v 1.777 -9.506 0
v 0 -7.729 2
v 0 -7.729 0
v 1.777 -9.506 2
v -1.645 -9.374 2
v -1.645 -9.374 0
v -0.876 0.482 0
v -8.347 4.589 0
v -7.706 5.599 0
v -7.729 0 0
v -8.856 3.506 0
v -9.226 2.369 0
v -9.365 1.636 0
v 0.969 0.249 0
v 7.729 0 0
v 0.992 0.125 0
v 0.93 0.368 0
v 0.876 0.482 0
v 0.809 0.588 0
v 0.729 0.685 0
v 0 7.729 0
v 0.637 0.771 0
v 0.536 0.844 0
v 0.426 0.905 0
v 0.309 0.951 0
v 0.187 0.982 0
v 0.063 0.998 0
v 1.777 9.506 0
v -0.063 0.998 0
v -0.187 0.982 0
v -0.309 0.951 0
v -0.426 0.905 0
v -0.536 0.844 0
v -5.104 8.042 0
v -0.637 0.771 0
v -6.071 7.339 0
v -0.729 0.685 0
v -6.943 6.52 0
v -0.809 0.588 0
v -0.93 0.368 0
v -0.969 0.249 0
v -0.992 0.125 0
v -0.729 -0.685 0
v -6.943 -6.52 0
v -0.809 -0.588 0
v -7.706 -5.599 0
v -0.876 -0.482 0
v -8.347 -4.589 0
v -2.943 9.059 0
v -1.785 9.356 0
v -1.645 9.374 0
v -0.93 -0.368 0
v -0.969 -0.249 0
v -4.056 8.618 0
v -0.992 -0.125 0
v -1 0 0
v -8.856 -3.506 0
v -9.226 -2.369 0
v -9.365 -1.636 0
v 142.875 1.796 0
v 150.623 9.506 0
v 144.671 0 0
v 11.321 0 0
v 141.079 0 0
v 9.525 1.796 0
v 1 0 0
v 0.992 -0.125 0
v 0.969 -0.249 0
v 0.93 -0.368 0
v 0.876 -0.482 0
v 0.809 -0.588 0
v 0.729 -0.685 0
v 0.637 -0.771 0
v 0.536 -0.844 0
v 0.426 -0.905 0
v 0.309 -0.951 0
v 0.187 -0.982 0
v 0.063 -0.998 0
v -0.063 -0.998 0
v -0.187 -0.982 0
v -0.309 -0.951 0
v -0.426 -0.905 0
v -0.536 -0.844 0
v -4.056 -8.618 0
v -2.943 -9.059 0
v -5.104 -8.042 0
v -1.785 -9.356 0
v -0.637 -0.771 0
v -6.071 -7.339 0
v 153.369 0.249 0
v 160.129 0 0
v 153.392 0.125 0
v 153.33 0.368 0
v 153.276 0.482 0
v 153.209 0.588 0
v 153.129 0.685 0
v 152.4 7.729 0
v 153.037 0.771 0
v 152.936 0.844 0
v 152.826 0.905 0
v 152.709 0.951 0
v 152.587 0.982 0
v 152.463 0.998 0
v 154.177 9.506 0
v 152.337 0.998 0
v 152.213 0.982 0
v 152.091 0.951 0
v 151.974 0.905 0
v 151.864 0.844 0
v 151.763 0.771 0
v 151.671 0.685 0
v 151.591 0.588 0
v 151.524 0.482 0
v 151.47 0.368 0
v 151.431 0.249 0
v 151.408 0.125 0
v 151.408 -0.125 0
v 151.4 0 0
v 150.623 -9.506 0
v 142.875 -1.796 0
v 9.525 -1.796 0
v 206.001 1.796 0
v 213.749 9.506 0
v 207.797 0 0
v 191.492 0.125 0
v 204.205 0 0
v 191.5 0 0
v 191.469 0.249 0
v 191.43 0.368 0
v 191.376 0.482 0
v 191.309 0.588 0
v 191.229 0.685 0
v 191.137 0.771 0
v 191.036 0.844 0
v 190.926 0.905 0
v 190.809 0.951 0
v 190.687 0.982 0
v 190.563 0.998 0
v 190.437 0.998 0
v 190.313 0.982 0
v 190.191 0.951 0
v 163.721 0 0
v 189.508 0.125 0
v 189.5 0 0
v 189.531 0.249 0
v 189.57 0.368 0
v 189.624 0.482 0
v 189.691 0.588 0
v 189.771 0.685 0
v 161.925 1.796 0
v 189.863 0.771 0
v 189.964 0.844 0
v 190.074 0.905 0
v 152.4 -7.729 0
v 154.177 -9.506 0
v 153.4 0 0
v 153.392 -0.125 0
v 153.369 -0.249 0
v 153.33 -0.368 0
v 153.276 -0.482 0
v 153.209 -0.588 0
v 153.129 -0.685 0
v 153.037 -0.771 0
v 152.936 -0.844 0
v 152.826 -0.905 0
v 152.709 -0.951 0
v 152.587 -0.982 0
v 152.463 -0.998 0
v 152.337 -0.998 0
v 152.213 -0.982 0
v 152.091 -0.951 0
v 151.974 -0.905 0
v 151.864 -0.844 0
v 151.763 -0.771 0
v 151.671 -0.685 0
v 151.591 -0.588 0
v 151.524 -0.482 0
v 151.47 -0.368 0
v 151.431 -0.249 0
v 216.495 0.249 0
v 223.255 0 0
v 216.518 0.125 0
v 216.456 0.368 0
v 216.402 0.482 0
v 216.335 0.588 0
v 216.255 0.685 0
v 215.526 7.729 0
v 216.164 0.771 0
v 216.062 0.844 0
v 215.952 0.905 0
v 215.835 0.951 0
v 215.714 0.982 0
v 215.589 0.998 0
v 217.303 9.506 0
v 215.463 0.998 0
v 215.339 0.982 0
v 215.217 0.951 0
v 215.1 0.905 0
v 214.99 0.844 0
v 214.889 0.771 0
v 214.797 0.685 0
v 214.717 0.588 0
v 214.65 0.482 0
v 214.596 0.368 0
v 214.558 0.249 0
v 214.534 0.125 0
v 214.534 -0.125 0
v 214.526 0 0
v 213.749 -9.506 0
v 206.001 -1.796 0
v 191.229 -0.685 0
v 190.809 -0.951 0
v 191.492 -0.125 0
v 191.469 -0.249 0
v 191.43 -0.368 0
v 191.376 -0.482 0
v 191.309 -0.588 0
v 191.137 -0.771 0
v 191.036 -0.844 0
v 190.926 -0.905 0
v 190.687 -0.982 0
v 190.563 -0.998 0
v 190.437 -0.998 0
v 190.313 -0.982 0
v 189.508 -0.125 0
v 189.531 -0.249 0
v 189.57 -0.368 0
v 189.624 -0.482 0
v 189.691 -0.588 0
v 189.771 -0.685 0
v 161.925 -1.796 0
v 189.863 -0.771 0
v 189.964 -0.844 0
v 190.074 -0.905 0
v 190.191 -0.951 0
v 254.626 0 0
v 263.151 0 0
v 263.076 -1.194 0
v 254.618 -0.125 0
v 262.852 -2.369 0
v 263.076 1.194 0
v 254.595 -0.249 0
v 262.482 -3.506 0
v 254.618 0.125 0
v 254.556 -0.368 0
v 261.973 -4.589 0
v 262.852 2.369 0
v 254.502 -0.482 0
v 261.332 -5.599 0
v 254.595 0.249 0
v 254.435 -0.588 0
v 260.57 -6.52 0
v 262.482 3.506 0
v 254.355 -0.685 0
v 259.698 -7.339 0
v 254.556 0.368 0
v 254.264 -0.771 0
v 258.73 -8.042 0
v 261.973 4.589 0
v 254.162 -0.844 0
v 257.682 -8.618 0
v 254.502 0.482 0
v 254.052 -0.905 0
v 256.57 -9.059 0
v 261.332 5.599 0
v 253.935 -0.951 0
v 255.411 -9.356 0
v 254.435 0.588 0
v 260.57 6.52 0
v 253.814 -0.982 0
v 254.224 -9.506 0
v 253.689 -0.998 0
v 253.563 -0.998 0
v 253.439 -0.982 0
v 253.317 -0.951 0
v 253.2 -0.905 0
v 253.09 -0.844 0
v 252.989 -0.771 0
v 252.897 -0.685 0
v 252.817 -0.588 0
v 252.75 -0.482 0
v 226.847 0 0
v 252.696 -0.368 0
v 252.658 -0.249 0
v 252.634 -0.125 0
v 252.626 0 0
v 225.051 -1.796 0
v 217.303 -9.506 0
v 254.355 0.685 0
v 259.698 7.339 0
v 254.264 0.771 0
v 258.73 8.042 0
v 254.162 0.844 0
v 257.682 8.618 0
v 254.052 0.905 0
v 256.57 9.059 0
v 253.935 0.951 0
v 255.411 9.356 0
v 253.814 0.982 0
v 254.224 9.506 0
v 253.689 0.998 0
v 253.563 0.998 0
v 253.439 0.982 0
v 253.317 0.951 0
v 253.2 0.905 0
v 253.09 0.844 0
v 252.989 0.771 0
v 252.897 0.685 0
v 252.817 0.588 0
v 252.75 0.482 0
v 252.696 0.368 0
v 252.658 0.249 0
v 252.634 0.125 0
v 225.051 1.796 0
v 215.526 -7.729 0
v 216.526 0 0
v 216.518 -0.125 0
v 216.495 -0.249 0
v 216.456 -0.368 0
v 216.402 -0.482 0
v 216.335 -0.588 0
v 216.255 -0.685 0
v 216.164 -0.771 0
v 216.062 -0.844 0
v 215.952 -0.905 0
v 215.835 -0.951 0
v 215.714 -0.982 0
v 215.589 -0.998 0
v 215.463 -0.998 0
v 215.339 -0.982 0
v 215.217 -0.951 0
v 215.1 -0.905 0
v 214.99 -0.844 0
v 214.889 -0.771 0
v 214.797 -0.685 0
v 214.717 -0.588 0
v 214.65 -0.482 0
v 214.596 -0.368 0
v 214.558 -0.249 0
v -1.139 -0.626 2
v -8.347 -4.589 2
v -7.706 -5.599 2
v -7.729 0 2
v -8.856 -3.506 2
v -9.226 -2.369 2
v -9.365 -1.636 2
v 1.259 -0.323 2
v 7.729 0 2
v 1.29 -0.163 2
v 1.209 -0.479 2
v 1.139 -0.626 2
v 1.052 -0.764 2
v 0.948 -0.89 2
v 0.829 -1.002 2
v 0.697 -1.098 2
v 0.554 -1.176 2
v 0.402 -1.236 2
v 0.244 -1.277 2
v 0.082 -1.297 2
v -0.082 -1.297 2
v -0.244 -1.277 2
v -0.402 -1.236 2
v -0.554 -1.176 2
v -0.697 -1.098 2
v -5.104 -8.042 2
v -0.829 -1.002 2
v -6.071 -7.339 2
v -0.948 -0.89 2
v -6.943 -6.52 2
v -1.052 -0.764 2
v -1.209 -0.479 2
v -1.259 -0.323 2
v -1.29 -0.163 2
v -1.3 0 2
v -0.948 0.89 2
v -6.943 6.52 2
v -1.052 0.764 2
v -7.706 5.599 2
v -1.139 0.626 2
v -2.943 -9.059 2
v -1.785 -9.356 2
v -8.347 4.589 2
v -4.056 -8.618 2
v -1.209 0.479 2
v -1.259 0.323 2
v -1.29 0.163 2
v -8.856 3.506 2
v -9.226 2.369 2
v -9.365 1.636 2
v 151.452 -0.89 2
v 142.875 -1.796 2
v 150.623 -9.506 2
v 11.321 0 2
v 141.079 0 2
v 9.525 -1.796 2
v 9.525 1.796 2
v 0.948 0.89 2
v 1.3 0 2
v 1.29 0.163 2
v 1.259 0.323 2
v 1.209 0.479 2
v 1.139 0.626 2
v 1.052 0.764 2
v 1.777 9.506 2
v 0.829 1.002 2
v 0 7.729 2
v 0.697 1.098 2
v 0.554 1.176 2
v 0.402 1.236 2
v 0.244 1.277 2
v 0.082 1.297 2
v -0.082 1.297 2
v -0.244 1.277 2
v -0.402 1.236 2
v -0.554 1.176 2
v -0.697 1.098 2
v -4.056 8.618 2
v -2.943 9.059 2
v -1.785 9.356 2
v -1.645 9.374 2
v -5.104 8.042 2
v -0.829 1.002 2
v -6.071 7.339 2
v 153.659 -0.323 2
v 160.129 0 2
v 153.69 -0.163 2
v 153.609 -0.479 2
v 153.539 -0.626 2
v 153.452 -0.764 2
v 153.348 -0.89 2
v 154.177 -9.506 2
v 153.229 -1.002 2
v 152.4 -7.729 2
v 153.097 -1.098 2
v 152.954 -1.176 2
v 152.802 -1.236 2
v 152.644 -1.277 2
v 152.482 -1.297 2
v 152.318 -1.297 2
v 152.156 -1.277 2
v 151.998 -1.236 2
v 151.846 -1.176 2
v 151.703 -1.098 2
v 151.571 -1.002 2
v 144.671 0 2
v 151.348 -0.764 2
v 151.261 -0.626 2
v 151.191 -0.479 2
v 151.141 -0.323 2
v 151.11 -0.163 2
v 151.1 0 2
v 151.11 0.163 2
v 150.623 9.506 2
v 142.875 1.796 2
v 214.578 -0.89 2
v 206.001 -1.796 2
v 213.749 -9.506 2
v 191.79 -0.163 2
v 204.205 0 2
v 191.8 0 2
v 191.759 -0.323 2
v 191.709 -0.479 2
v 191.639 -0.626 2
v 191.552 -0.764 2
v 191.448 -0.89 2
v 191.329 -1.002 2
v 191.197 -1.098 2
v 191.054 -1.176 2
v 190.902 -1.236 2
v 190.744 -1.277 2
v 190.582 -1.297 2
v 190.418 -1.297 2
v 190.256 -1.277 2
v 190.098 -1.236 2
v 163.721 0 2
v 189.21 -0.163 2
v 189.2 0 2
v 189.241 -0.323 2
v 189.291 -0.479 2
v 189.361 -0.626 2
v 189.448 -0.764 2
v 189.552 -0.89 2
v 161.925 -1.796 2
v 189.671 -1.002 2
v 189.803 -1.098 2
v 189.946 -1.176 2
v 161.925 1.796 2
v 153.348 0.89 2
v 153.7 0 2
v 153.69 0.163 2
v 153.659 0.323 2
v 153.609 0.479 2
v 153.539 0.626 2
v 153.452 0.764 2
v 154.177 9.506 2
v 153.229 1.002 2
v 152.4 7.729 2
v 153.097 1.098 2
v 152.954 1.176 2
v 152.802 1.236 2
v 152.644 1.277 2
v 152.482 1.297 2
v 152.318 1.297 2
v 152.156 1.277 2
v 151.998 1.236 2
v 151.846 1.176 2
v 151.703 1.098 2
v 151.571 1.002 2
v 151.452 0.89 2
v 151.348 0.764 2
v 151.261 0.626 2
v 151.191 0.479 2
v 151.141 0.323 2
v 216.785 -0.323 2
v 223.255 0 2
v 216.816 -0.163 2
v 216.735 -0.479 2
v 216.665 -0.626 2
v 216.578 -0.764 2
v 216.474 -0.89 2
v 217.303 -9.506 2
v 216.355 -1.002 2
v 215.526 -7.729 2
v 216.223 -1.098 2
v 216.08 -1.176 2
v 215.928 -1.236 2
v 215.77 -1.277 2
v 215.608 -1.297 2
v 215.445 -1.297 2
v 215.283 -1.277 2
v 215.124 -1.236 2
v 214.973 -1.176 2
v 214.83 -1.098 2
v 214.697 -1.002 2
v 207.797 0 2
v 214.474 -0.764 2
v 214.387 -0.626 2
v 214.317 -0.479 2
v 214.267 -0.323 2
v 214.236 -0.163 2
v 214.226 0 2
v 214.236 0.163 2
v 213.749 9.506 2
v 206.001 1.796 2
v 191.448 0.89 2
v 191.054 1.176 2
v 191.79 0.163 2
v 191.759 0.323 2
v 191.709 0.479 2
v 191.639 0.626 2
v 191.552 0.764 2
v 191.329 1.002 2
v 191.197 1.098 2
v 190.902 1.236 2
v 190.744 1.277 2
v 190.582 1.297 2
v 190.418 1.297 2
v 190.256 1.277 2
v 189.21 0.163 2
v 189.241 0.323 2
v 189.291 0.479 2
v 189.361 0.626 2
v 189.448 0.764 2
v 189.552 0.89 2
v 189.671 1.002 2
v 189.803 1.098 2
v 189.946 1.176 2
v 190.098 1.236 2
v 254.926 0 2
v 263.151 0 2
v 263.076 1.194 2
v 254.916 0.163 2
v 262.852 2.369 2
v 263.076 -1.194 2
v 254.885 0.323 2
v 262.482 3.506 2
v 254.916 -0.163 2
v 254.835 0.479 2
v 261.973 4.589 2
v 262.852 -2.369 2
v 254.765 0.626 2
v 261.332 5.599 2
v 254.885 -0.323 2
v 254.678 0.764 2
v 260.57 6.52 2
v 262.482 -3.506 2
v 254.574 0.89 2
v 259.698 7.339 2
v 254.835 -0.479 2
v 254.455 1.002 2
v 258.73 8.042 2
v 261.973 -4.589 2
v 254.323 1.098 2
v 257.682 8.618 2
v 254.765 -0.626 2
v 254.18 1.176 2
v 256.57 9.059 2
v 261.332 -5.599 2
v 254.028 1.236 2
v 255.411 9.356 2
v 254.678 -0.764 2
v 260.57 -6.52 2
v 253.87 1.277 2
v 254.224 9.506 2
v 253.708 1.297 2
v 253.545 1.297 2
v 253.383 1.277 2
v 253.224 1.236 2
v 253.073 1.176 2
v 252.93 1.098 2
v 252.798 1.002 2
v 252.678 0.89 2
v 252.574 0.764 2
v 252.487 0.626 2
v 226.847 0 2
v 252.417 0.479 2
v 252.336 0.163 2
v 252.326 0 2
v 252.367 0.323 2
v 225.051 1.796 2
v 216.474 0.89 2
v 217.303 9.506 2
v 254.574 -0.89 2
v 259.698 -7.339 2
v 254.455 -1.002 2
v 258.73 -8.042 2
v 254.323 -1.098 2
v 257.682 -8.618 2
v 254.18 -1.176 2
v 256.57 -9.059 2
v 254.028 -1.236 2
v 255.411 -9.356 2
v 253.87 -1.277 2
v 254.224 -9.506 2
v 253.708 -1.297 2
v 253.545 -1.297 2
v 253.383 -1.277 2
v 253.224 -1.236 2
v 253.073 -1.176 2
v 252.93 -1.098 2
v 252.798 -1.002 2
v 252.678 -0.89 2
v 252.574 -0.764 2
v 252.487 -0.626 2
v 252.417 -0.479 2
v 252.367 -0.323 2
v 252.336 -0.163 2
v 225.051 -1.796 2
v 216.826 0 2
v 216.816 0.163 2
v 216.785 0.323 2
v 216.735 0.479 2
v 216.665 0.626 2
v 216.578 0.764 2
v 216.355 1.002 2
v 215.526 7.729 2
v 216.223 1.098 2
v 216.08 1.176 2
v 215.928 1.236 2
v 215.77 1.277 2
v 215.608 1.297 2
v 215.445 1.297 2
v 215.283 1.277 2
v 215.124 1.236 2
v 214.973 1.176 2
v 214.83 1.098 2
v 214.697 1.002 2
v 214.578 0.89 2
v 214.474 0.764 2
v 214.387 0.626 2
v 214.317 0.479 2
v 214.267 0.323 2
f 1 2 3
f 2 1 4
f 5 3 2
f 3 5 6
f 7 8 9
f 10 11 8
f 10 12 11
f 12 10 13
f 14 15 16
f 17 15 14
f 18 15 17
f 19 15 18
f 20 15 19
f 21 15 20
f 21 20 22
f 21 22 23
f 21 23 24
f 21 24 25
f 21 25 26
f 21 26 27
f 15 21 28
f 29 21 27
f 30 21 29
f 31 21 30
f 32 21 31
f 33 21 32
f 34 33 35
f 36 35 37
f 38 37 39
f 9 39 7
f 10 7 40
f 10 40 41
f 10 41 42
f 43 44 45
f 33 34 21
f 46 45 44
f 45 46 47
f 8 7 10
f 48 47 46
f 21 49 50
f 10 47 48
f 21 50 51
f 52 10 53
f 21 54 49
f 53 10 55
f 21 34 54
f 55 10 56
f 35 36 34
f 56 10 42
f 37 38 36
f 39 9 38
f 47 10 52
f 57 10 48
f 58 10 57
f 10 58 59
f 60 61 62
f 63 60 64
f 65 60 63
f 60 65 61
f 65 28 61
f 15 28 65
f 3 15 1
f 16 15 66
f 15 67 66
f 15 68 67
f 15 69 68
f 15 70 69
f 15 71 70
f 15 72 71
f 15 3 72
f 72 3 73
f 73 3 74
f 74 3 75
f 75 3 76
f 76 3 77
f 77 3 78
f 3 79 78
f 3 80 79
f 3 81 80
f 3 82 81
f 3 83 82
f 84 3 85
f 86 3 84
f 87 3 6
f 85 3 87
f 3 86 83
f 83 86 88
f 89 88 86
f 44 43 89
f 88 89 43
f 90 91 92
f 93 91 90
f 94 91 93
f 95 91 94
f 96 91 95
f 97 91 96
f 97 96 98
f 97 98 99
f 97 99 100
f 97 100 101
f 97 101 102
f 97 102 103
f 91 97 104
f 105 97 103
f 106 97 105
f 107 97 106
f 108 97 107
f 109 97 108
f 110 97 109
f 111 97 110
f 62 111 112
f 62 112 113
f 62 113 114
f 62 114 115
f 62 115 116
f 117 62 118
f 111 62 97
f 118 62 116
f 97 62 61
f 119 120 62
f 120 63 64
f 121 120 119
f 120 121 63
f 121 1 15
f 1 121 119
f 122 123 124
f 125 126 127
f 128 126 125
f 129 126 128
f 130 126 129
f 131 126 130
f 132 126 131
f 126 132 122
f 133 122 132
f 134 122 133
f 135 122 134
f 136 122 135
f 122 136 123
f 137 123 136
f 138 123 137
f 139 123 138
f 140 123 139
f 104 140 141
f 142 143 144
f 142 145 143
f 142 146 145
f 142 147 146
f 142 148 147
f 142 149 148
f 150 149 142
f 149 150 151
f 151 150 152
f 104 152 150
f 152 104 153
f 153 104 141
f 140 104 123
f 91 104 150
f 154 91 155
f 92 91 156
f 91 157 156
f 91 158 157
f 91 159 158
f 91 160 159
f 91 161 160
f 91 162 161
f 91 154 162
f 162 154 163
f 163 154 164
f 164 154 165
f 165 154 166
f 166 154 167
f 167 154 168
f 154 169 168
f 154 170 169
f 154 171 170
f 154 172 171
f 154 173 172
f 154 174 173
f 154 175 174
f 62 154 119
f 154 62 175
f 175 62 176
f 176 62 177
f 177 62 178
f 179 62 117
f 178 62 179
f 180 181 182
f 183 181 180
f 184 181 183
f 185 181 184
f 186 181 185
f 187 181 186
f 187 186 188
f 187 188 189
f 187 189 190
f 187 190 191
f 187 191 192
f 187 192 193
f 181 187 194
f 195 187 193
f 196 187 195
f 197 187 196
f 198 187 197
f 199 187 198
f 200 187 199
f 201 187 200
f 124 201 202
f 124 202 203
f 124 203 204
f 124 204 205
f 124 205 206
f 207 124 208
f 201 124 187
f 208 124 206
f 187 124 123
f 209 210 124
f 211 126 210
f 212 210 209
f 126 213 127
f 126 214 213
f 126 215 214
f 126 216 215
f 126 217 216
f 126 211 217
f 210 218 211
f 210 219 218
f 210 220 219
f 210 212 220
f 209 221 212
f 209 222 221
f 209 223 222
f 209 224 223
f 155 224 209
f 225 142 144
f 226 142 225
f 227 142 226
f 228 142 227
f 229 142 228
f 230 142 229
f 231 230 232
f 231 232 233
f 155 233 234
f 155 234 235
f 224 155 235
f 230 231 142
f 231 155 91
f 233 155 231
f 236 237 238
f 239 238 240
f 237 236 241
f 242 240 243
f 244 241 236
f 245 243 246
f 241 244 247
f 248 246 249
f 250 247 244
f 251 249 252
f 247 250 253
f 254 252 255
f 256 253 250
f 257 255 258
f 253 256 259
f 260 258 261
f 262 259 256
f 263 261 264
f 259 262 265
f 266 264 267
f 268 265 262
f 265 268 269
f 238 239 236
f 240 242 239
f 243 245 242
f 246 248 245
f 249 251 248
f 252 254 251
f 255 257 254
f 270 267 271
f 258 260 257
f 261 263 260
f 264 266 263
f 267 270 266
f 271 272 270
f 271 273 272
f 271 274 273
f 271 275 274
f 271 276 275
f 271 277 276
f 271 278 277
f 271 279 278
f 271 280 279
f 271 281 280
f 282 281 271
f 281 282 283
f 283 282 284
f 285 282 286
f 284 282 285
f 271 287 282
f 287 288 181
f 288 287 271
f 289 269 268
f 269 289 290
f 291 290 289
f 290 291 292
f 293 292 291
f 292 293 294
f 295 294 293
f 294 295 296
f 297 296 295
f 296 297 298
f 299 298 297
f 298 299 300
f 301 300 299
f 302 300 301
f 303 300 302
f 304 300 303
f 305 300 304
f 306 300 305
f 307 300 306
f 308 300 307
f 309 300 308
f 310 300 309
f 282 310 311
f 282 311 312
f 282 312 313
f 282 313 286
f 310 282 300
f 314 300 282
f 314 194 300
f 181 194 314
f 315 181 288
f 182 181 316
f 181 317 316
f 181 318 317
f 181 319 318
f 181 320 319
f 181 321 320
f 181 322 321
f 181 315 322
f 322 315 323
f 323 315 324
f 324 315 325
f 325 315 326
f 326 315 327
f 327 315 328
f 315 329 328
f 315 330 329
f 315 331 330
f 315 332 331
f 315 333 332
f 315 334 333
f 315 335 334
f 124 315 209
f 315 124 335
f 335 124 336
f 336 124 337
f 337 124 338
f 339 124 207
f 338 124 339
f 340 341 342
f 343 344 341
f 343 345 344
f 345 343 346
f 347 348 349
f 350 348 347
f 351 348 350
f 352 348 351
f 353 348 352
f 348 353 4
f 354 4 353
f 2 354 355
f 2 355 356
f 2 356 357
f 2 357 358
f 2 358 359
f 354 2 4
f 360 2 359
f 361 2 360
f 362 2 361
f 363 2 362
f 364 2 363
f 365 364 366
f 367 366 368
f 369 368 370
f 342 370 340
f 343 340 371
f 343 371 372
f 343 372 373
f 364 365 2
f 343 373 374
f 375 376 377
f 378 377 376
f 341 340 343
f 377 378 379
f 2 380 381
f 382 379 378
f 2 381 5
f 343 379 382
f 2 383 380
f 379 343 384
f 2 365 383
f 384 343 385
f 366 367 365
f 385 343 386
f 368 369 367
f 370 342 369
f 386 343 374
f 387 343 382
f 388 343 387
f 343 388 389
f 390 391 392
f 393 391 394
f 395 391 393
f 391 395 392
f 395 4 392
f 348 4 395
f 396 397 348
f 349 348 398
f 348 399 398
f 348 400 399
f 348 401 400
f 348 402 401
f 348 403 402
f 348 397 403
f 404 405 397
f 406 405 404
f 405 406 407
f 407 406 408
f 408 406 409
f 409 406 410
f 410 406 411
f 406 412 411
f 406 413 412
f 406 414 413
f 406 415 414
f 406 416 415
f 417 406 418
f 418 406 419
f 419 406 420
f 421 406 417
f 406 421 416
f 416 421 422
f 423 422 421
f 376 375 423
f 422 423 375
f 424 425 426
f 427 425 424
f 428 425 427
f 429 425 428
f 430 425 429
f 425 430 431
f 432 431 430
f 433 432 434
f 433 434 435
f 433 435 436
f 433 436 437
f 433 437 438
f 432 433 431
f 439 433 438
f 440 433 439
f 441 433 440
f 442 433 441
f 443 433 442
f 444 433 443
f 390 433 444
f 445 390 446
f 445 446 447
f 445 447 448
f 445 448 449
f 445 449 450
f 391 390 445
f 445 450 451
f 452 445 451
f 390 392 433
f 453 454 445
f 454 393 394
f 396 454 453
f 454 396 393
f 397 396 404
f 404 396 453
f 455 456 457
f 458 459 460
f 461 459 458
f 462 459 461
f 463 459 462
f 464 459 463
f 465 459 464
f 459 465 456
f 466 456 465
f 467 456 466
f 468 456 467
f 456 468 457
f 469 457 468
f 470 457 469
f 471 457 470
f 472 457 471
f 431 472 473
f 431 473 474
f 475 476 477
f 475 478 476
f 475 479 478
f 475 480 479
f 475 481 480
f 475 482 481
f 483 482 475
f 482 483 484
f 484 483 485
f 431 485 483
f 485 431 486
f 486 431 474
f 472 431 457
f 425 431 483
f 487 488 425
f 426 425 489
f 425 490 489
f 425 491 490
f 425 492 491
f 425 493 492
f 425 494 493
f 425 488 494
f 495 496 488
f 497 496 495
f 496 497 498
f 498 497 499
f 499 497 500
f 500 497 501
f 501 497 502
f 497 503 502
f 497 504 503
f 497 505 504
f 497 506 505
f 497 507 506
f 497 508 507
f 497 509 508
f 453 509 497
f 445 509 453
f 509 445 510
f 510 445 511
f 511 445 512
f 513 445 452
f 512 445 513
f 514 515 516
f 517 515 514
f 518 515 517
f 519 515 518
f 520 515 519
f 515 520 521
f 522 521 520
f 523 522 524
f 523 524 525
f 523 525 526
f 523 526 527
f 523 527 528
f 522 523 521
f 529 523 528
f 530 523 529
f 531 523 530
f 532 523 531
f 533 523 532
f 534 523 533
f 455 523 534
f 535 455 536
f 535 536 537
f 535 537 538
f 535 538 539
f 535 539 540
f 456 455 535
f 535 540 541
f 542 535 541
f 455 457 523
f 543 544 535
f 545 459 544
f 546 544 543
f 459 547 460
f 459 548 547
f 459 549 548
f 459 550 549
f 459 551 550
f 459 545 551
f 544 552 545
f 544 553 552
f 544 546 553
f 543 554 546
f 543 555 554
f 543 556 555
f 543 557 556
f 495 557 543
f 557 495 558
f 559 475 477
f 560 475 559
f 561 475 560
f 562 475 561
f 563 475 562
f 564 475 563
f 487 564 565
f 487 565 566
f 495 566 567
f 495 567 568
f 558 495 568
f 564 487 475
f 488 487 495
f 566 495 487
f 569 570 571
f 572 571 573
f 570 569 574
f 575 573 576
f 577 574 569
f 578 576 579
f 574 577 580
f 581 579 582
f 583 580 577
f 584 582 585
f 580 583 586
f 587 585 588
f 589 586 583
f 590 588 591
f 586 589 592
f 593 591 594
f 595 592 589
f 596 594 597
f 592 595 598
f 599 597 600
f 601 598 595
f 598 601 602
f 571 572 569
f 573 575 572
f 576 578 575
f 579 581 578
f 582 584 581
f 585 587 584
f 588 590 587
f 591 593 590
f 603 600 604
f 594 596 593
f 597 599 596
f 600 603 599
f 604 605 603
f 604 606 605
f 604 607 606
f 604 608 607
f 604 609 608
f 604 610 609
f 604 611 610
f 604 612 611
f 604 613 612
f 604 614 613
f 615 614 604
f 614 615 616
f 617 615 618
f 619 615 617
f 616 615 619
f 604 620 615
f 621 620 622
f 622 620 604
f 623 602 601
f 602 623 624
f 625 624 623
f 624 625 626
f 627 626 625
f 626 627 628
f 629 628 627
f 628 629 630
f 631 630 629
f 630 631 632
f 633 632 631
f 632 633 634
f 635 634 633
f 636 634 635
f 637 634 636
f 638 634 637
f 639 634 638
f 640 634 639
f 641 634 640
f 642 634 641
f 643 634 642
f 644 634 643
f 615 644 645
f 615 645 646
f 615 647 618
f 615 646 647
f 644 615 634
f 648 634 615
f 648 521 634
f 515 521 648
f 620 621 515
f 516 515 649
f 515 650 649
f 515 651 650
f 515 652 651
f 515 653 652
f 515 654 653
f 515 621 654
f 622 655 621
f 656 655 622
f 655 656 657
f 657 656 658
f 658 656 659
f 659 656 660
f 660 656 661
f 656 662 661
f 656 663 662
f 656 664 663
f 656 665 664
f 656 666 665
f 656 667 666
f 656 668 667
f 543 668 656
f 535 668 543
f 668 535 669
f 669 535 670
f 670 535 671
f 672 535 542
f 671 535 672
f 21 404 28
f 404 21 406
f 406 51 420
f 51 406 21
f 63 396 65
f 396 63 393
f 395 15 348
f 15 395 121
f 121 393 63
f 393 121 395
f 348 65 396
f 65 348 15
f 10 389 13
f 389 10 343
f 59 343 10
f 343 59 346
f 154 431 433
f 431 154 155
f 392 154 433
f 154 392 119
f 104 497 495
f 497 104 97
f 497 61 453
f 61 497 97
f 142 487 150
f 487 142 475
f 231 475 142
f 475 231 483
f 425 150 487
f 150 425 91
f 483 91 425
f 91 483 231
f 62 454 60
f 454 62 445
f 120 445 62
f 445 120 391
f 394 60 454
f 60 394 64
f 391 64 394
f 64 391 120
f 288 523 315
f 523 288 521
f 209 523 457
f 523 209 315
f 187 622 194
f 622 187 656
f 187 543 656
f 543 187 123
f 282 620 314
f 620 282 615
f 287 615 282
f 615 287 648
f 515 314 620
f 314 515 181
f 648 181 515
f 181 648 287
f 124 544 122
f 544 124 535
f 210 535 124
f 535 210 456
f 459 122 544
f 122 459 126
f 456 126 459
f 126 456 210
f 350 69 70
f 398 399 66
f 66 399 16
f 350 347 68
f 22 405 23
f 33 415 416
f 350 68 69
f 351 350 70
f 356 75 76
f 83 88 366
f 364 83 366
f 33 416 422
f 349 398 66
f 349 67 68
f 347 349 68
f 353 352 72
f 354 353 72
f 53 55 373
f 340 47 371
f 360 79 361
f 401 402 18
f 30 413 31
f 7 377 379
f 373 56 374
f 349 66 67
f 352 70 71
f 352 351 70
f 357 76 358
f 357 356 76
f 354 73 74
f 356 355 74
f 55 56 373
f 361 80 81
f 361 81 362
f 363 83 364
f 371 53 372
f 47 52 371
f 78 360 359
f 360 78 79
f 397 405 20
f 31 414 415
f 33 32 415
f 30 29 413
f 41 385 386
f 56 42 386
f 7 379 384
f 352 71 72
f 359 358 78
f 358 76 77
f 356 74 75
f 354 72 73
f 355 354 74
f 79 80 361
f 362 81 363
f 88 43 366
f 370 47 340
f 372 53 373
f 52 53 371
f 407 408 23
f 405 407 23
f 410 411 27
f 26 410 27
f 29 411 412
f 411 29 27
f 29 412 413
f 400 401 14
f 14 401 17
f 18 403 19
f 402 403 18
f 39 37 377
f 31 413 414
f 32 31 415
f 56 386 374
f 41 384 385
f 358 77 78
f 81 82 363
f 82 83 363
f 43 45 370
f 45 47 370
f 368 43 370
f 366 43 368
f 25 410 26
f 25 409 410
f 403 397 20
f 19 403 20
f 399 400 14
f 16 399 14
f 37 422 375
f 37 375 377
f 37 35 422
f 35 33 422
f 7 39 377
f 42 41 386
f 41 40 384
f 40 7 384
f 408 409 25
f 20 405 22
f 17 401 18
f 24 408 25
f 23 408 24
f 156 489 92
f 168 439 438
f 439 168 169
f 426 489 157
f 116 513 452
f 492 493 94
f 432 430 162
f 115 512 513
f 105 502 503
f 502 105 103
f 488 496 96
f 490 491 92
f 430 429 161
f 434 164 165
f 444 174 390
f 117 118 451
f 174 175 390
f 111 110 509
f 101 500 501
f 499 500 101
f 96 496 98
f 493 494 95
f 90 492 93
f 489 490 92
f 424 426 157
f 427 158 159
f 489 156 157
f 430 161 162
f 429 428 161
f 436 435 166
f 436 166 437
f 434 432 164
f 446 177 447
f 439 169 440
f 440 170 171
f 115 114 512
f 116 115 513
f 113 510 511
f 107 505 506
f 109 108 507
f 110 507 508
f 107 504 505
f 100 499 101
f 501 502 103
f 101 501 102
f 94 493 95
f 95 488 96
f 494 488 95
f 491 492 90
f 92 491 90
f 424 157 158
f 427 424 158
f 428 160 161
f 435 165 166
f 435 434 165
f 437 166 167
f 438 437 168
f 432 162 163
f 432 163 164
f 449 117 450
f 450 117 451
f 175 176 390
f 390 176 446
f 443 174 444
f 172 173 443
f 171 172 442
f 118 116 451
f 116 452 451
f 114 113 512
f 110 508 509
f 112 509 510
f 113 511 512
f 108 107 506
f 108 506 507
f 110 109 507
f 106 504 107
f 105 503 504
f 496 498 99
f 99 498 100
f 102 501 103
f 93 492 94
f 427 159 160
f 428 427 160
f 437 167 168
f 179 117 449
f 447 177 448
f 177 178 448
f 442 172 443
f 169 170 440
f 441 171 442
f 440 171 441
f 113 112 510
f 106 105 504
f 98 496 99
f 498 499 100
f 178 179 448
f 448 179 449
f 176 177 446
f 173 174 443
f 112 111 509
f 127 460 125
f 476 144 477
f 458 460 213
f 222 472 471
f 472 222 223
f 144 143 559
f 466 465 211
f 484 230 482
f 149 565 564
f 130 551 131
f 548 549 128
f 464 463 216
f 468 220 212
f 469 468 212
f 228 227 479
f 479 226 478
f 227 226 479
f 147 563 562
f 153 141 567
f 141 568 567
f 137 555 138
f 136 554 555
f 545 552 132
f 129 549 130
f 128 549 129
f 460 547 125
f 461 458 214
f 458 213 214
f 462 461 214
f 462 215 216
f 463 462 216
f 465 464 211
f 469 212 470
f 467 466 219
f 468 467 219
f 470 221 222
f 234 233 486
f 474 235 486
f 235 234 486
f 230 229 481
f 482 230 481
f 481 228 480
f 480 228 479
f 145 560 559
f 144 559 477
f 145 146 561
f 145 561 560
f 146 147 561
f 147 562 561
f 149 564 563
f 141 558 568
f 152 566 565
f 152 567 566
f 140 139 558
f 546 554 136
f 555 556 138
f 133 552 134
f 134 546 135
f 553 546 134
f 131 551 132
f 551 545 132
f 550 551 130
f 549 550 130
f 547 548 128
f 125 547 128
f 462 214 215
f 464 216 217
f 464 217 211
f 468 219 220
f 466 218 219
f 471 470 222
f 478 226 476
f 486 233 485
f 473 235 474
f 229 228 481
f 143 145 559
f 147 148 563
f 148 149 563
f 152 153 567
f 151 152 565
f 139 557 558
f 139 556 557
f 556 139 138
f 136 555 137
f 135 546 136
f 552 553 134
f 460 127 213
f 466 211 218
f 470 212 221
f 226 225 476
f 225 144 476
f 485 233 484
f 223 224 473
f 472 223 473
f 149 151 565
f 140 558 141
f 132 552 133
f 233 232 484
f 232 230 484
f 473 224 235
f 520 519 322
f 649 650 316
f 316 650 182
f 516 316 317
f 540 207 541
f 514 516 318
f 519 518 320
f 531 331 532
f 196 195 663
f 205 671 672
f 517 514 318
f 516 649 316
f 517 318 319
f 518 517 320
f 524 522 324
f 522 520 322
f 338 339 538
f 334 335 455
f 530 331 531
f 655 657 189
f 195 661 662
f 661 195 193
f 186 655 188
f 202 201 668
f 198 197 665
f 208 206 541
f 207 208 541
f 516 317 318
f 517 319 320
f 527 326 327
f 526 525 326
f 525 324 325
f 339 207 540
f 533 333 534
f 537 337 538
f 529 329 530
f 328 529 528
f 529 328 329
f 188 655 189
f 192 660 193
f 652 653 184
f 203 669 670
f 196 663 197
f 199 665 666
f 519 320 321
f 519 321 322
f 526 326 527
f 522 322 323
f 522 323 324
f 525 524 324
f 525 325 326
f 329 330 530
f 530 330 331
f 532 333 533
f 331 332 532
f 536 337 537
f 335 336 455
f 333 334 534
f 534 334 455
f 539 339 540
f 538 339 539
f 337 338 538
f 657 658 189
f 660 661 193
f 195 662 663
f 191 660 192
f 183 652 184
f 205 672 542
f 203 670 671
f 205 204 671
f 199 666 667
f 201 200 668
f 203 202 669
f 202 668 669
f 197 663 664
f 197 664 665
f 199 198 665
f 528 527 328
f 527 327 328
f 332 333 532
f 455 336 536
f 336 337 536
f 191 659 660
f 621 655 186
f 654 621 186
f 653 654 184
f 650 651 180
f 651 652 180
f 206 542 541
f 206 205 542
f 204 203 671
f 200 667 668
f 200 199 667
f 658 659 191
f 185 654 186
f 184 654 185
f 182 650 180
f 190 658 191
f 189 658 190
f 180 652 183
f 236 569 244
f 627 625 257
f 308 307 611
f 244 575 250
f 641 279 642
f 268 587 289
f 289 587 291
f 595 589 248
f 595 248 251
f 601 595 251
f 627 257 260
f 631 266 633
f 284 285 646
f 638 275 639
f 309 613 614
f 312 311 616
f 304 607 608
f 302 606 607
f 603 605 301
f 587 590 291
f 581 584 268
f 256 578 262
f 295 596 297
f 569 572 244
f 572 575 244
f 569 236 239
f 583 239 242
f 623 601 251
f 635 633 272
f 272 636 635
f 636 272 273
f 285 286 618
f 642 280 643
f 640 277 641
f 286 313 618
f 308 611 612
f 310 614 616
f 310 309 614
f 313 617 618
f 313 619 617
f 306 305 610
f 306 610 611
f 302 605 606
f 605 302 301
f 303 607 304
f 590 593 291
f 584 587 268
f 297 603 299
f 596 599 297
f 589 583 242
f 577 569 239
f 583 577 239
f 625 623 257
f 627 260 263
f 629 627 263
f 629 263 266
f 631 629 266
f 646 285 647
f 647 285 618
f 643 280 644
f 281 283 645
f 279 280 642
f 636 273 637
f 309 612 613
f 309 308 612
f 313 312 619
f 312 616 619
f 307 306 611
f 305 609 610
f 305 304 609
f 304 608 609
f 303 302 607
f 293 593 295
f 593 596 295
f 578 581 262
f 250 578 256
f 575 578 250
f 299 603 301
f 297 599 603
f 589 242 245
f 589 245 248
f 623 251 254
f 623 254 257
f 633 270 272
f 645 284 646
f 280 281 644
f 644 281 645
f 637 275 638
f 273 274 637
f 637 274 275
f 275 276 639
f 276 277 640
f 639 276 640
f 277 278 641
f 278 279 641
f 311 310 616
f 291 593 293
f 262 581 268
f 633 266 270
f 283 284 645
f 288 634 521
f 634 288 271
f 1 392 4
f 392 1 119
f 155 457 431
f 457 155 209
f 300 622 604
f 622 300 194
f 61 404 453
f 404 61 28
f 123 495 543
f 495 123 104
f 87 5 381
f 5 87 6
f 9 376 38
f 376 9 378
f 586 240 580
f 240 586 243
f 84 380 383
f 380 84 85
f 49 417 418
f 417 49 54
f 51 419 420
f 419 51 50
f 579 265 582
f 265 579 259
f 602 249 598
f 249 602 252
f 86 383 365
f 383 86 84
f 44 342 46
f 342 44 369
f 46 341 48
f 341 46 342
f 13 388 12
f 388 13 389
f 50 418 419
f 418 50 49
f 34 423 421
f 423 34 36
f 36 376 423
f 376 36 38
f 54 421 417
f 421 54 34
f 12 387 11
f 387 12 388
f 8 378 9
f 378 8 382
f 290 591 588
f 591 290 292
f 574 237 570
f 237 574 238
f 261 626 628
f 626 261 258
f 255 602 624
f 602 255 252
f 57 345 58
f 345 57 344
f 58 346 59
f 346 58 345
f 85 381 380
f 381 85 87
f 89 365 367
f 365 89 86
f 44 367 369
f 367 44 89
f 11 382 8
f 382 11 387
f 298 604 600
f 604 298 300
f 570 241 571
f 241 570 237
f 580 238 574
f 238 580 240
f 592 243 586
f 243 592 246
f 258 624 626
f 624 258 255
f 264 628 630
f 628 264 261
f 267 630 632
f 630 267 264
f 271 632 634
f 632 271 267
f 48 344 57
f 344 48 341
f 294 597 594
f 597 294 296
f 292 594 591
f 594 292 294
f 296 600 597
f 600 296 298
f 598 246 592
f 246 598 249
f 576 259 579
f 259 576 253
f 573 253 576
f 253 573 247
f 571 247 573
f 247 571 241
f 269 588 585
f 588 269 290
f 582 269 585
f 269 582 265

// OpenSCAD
// A spacing guide for 6" spaced holes on a square grid.
// The guide also includes measurement for the diagonal.

$fn = 50;
I2MM = 25.4;
dist = 6 * I2MM; // square spacing.
diag_dist = sqrt(2) * dist; // diagonal
clearance = 1.5 * I2MM; // Min distance from hole center to edge
width = 0.75 * I2MM;
notch_edge = 0.1 * I2MM;
thickness = 2; // ruler thickness

// cuts a v-shape notch if center is positioned on edge of shape
module notch(x, y) {
    linear_extrude(thickness) translate([x, y, 0]) rotate([0,0,45]) square(notch_edge, center=true);
}


module disk(x, r1, r2) {
    translate([x, 0, 0])
        cylinder(h=thickness, r1=r1, r2=r2);
}


// the ruler shape
module ruler_blank() {
    hull() {
        r = width/2;
        union() {
            disk(0, r, r);
            disk(dist, r, r);
            disk(dist + clearance, r, r);
            disk(diag_dist, r, r);
            disk(diag_dist + clearance, r, r);
        }
    }
}

module notch_punchouts(x) {
    r = width/2;
    notch(x, -r);
    notch(x, +r);
    notch(x+r, 0);
    notch(x-r, 0);
}

module ruler_punchouts() {
    r = width/2;
    r1 = 1;
    r2 = 1.3;
    union() {
        disk(0, r1, r2);
        disk(dist, r1, r2);
        disk(dist + clearance, r1, r2);
        disk(diag_dist, r1, r2);
        disk(diag_dist + clearance, r1, r2);
        notch_punchouts(0);
        notch_punchouts(dist);
        notch_punchouts(diag_dist);
    }
}

module ruler() {
    difference() {
        ruler_blank();
        ruler_punchouts();
    }
}

//ruler_punchouts();
//notch(20, 30);
ruler();
